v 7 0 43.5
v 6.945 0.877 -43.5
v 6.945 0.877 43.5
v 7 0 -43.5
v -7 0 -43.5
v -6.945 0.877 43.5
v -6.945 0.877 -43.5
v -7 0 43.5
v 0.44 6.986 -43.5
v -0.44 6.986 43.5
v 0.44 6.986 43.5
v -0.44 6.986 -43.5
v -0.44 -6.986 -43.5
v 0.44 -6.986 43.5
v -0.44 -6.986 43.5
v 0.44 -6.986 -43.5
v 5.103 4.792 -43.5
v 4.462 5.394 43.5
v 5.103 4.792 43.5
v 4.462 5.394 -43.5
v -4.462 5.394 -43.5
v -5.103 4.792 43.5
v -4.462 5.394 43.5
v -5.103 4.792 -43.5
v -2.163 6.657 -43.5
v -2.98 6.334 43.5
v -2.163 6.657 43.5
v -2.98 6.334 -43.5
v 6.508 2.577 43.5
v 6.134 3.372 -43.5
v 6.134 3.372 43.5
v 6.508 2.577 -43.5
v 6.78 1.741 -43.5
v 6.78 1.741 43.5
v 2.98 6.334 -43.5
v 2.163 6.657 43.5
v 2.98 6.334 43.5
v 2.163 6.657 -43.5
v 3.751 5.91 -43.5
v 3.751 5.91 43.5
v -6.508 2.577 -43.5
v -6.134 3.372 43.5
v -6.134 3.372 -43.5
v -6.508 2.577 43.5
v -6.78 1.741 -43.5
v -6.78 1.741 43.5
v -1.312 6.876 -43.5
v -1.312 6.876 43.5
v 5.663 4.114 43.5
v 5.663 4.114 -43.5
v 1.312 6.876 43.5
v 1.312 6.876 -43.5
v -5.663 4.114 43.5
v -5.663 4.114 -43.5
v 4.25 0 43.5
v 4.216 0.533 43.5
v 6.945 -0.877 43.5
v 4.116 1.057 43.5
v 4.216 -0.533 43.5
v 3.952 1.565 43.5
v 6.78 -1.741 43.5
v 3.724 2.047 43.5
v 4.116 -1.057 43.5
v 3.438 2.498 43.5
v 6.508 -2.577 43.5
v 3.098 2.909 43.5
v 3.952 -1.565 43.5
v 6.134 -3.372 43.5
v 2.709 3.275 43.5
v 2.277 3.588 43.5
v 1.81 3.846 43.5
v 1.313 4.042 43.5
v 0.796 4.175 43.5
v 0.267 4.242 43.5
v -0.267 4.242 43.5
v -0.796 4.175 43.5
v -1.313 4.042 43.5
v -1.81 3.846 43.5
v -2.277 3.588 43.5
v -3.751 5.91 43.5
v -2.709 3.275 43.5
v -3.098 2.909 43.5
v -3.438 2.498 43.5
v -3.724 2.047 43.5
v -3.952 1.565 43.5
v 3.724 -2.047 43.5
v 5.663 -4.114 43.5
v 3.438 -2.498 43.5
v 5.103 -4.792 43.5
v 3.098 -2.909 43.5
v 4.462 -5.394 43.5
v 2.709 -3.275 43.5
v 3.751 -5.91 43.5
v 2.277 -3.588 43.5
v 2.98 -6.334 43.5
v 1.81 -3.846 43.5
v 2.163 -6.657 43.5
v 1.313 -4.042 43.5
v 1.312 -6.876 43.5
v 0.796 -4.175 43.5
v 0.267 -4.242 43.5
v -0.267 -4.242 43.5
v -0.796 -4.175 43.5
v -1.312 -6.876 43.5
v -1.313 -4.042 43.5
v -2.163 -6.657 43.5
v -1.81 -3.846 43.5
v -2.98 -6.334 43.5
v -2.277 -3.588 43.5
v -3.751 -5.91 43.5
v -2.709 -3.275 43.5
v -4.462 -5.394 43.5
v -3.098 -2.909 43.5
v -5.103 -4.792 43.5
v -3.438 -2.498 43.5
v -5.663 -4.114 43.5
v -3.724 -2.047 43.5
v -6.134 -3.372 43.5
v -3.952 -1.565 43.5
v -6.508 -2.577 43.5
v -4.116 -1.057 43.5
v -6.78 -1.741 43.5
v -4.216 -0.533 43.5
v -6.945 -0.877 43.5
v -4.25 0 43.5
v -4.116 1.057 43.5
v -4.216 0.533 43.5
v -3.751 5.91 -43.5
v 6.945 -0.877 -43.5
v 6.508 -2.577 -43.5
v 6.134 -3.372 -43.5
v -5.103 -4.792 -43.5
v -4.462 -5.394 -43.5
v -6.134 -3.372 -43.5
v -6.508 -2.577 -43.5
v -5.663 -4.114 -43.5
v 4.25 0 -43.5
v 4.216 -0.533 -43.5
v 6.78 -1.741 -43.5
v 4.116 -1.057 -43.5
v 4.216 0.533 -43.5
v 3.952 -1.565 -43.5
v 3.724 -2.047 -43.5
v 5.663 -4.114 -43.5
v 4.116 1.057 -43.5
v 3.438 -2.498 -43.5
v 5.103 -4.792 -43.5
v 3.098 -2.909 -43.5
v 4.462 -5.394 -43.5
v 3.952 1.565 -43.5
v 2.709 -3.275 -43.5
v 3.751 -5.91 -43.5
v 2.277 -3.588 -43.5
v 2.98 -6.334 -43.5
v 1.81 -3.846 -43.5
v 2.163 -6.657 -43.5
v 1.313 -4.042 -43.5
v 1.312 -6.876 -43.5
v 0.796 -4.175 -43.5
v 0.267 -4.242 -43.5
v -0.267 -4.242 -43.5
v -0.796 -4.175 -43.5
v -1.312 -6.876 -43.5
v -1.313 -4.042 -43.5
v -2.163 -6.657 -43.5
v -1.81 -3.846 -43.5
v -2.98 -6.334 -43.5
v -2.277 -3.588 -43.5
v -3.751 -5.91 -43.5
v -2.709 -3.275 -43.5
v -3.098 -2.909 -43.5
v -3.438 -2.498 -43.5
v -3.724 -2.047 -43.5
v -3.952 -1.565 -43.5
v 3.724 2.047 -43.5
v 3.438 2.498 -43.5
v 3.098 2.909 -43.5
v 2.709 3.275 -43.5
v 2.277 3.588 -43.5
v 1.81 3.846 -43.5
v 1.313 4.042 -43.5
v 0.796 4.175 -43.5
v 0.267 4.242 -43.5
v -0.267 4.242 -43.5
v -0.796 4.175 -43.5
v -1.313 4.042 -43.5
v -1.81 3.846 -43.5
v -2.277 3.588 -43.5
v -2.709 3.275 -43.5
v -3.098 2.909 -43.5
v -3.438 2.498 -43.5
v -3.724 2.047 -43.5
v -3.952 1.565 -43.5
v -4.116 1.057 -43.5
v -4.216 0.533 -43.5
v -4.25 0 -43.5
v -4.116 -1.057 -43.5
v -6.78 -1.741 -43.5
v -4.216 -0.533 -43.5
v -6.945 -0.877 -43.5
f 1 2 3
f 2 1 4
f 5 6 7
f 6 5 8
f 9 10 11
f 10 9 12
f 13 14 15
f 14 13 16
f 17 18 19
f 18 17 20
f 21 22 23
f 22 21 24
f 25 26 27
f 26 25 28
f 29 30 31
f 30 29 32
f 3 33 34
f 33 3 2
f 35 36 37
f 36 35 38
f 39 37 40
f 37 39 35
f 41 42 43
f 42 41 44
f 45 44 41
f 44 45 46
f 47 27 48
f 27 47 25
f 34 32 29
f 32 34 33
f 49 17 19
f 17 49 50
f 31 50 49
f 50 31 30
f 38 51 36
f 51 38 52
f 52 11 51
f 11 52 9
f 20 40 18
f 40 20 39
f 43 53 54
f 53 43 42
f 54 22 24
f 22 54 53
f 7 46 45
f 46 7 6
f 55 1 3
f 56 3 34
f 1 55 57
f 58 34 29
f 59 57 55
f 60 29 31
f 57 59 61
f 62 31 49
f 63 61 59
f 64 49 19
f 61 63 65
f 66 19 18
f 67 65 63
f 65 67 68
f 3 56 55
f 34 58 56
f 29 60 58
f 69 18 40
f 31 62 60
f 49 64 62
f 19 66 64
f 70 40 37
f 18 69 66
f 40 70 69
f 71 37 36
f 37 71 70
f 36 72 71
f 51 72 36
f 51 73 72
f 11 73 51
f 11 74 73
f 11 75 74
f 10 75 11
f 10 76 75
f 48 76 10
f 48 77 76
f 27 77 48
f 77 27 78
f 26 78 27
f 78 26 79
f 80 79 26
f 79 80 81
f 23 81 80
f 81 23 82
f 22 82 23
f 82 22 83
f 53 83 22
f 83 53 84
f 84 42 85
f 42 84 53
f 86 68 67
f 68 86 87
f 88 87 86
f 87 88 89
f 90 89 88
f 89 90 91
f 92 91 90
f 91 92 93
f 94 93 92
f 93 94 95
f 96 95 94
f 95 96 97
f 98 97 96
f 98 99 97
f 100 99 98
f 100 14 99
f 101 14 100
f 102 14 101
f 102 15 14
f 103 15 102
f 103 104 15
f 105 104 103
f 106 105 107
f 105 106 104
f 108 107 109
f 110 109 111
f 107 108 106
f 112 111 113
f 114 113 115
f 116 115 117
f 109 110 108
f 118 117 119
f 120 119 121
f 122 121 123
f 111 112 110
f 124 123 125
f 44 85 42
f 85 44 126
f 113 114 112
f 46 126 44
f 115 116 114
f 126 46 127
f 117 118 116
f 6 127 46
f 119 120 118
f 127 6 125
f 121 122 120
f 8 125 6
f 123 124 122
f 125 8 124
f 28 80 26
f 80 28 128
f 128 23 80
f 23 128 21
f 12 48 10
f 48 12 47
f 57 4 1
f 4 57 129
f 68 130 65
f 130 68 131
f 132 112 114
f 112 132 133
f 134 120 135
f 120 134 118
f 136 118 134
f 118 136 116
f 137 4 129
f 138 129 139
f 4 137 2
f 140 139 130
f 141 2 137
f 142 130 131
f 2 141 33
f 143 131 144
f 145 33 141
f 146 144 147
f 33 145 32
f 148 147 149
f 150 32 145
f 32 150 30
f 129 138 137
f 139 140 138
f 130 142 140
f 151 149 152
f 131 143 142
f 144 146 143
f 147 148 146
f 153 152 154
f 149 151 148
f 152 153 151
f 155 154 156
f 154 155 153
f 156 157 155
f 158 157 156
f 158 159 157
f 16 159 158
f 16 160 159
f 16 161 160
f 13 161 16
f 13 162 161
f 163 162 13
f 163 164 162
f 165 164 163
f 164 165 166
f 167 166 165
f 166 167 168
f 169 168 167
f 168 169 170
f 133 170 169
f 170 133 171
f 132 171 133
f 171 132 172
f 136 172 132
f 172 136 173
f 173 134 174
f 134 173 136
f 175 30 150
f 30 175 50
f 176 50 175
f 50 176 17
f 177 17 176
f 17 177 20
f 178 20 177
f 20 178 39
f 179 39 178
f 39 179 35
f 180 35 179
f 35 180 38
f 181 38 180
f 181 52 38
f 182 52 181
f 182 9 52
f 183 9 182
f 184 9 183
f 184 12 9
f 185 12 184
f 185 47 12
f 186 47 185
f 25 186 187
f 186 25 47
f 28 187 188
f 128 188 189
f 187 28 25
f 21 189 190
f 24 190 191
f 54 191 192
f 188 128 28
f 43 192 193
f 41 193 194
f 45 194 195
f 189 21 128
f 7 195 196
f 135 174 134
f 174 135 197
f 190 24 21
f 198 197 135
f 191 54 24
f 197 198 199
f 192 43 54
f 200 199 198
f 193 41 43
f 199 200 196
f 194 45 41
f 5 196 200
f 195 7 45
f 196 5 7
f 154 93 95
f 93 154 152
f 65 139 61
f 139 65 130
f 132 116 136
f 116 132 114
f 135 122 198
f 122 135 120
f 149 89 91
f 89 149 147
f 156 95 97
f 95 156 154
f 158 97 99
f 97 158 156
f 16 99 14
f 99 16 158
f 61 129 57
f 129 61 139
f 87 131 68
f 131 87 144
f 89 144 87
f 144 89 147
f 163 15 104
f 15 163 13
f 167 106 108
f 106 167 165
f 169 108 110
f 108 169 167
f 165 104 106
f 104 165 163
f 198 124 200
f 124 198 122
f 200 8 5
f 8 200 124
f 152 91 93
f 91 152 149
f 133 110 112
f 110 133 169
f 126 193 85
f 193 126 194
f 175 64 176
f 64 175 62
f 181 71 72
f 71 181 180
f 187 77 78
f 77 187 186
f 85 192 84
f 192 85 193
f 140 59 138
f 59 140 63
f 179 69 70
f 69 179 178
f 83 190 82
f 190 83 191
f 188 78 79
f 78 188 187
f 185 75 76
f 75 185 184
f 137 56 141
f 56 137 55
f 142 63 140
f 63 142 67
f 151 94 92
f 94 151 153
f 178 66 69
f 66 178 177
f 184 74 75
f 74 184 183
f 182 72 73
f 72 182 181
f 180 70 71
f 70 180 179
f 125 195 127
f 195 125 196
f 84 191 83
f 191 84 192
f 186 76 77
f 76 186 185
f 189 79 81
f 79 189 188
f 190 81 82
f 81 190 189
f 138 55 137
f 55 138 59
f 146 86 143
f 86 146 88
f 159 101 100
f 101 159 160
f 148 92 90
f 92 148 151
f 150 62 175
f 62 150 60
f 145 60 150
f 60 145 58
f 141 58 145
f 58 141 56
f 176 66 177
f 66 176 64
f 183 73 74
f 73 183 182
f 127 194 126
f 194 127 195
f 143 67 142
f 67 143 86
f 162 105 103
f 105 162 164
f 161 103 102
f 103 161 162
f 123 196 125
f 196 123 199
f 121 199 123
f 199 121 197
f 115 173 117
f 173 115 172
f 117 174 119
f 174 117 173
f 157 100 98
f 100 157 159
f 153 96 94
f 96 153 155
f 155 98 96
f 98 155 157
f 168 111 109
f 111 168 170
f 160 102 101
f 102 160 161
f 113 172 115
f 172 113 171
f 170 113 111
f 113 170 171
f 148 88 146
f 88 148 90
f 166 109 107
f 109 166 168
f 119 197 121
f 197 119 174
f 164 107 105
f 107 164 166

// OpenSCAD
$fn = 50;


difference() {
	union() {
		translate(v = [0, 0, -43.5000000000]) {
			cylinder(h = 87, r = 7.0000000000);
		}
	}
	union() {
		translate(v = [0, 0, -100.0000000000]) {
			cylinder(h = 200, r = 4.2500000000);
		}
	}
}
